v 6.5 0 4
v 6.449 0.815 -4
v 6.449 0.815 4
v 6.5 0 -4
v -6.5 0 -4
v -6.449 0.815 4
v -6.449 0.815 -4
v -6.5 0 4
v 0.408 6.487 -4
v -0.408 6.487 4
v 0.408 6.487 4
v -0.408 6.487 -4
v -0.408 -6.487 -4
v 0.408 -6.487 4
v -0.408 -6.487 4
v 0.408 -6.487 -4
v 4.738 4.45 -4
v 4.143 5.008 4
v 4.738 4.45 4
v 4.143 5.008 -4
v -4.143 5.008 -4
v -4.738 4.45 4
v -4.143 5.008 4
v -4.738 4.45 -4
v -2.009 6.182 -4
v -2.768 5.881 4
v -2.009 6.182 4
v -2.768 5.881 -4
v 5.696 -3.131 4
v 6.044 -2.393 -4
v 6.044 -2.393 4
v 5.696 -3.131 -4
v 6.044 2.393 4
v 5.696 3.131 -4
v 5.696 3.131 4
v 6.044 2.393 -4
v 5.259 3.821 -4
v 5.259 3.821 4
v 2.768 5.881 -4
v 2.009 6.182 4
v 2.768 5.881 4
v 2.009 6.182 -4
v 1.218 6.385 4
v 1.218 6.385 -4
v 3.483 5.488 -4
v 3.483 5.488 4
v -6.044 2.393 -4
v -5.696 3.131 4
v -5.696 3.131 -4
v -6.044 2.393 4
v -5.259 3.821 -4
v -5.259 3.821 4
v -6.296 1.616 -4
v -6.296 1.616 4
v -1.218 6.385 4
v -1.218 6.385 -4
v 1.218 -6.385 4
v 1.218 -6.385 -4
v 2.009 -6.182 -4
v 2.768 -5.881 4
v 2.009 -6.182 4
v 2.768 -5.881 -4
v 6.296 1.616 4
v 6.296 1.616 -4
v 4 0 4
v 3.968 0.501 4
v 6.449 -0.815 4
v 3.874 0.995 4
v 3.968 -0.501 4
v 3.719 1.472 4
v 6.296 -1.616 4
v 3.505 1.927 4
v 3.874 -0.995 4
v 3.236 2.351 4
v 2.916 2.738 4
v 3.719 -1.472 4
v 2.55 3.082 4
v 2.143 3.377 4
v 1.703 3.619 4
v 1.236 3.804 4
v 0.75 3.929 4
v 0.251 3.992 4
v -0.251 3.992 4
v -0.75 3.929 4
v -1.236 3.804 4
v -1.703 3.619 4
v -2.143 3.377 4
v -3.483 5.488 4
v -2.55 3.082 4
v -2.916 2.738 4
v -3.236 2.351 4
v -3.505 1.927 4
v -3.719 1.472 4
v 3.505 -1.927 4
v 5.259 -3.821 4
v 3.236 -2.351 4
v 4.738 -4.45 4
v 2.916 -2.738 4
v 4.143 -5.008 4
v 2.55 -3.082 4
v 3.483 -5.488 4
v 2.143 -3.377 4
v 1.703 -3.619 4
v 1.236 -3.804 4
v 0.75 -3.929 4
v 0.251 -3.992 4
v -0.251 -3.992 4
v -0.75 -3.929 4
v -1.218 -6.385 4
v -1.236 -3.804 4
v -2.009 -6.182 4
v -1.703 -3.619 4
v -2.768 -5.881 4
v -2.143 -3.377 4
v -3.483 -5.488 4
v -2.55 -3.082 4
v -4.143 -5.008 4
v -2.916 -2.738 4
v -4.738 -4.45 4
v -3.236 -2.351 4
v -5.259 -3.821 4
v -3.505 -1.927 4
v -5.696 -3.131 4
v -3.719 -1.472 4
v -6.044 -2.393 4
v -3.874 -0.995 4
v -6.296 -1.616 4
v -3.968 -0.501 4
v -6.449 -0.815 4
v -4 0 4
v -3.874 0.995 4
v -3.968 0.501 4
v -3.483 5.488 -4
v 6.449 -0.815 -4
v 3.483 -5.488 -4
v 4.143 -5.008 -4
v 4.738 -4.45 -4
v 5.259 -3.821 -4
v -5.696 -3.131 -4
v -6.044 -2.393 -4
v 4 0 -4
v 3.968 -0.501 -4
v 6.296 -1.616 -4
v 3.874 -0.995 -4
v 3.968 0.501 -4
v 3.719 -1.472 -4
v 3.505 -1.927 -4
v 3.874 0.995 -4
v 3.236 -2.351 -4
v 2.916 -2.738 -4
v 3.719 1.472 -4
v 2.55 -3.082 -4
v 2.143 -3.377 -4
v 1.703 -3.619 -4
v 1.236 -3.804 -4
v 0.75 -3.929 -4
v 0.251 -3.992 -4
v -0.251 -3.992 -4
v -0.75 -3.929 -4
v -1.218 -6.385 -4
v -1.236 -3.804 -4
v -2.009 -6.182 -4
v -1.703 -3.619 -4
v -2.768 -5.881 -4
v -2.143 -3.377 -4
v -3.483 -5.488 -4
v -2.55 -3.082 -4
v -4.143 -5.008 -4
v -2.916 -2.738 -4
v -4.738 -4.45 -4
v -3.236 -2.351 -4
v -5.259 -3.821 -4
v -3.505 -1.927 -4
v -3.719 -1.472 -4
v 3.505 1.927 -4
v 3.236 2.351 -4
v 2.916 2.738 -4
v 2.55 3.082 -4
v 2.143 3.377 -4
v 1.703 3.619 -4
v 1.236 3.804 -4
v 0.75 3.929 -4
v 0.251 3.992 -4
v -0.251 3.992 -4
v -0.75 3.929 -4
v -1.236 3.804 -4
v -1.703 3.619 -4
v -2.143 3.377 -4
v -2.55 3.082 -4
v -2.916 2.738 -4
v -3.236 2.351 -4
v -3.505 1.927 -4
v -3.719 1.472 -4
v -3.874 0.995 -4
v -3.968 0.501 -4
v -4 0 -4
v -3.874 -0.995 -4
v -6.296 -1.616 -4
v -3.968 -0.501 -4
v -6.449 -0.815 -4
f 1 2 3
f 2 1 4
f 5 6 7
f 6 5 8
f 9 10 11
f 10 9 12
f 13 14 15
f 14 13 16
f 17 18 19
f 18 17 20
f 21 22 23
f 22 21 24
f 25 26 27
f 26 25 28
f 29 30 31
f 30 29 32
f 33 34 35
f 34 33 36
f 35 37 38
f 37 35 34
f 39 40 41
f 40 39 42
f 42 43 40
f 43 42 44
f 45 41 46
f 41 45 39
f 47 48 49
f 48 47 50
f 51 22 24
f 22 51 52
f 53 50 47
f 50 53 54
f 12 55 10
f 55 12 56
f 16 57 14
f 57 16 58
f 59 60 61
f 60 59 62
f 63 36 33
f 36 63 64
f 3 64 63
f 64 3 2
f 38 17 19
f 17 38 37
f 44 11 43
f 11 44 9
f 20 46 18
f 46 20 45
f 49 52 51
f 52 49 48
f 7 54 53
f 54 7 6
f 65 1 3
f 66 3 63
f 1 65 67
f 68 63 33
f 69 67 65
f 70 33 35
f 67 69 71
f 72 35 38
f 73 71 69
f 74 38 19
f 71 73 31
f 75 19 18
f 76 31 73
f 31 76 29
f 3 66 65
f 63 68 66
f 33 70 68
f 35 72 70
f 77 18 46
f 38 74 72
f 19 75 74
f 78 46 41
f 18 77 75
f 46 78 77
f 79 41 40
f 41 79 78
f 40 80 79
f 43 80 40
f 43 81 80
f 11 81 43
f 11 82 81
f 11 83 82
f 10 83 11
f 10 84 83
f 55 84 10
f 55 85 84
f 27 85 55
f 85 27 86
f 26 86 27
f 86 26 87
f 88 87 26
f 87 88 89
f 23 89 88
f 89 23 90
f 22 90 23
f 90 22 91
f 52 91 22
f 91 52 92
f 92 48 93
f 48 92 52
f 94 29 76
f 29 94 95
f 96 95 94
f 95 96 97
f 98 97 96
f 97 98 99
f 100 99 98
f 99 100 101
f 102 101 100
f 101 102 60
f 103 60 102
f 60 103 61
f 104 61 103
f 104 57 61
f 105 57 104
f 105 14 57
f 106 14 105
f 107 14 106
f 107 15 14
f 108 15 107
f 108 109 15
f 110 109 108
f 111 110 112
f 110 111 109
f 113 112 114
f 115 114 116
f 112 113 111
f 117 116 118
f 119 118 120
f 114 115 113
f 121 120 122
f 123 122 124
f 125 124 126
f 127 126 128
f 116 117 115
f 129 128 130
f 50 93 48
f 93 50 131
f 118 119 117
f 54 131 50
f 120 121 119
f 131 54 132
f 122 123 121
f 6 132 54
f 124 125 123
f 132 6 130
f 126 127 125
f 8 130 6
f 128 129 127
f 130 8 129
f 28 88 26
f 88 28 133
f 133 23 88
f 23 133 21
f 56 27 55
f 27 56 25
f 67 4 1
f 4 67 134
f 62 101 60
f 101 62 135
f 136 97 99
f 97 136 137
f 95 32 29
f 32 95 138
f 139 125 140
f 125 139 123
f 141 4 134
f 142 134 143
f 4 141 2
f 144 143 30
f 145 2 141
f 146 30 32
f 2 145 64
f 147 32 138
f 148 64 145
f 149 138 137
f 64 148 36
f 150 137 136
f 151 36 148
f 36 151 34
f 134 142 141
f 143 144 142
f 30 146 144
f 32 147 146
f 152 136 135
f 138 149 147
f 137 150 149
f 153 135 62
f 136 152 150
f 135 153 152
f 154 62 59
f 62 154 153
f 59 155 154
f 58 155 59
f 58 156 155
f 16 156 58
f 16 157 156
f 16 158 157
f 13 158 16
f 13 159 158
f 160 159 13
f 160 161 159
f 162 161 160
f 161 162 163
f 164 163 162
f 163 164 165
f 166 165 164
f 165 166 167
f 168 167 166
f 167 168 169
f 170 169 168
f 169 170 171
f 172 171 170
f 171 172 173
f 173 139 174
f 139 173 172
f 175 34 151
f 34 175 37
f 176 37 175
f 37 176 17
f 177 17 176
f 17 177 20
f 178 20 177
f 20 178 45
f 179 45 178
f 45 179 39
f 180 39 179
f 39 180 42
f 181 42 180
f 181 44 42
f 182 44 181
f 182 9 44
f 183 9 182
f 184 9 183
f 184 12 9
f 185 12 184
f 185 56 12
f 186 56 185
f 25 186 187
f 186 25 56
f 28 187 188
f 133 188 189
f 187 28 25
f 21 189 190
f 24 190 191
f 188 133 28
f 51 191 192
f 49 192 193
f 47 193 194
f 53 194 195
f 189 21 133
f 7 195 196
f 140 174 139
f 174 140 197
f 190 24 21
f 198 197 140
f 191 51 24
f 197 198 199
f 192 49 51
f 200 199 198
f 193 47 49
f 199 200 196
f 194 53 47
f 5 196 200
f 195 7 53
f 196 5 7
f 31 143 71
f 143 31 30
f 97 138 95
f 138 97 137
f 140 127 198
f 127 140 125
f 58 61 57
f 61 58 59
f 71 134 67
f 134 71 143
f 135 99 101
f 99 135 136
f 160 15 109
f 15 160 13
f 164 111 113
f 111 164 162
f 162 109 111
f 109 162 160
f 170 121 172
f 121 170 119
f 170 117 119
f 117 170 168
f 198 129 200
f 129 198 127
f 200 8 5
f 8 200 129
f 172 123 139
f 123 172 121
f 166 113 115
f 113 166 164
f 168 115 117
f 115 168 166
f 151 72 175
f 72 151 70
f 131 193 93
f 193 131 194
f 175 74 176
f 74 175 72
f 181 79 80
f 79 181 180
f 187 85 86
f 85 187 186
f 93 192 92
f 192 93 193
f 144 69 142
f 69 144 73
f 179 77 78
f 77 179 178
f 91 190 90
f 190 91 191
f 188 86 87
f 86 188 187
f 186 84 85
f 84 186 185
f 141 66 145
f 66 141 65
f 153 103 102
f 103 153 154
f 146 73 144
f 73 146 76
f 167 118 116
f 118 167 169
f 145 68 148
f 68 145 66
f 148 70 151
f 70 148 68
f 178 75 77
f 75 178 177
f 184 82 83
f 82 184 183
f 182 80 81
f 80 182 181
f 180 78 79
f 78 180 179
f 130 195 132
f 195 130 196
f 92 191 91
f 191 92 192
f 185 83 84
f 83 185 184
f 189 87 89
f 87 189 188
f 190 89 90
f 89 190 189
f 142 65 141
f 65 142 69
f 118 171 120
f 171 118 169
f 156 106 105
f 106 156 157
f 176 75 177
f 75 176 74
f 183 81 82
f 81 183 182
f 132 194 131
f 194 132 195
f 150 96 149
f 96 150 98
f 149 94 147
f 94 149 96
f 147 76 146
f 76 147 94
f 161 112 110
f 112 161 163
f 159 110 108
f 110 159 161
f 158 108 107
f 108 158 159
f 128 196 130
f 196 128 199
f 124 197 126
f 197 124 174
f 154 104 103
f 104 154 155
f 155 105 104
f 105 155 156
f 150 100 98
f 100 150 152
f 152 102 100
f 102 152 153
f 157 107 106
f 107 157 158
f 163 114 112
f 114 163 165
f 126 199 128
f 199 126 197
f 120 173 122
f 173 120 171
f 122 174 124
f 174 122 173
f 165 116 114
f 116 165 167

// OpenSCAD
$fn = 50;


difference() {
	union() {
		translate(v = [0, 0, -4.0000000000]) {
			cylinder(h = 8, r = 6.5000000000);
		}
	}
	union() {
		translate(v = [0, 0, -100.0000000000]) {
			cylinder(h = 200, r = 4);
		}
	}
}
